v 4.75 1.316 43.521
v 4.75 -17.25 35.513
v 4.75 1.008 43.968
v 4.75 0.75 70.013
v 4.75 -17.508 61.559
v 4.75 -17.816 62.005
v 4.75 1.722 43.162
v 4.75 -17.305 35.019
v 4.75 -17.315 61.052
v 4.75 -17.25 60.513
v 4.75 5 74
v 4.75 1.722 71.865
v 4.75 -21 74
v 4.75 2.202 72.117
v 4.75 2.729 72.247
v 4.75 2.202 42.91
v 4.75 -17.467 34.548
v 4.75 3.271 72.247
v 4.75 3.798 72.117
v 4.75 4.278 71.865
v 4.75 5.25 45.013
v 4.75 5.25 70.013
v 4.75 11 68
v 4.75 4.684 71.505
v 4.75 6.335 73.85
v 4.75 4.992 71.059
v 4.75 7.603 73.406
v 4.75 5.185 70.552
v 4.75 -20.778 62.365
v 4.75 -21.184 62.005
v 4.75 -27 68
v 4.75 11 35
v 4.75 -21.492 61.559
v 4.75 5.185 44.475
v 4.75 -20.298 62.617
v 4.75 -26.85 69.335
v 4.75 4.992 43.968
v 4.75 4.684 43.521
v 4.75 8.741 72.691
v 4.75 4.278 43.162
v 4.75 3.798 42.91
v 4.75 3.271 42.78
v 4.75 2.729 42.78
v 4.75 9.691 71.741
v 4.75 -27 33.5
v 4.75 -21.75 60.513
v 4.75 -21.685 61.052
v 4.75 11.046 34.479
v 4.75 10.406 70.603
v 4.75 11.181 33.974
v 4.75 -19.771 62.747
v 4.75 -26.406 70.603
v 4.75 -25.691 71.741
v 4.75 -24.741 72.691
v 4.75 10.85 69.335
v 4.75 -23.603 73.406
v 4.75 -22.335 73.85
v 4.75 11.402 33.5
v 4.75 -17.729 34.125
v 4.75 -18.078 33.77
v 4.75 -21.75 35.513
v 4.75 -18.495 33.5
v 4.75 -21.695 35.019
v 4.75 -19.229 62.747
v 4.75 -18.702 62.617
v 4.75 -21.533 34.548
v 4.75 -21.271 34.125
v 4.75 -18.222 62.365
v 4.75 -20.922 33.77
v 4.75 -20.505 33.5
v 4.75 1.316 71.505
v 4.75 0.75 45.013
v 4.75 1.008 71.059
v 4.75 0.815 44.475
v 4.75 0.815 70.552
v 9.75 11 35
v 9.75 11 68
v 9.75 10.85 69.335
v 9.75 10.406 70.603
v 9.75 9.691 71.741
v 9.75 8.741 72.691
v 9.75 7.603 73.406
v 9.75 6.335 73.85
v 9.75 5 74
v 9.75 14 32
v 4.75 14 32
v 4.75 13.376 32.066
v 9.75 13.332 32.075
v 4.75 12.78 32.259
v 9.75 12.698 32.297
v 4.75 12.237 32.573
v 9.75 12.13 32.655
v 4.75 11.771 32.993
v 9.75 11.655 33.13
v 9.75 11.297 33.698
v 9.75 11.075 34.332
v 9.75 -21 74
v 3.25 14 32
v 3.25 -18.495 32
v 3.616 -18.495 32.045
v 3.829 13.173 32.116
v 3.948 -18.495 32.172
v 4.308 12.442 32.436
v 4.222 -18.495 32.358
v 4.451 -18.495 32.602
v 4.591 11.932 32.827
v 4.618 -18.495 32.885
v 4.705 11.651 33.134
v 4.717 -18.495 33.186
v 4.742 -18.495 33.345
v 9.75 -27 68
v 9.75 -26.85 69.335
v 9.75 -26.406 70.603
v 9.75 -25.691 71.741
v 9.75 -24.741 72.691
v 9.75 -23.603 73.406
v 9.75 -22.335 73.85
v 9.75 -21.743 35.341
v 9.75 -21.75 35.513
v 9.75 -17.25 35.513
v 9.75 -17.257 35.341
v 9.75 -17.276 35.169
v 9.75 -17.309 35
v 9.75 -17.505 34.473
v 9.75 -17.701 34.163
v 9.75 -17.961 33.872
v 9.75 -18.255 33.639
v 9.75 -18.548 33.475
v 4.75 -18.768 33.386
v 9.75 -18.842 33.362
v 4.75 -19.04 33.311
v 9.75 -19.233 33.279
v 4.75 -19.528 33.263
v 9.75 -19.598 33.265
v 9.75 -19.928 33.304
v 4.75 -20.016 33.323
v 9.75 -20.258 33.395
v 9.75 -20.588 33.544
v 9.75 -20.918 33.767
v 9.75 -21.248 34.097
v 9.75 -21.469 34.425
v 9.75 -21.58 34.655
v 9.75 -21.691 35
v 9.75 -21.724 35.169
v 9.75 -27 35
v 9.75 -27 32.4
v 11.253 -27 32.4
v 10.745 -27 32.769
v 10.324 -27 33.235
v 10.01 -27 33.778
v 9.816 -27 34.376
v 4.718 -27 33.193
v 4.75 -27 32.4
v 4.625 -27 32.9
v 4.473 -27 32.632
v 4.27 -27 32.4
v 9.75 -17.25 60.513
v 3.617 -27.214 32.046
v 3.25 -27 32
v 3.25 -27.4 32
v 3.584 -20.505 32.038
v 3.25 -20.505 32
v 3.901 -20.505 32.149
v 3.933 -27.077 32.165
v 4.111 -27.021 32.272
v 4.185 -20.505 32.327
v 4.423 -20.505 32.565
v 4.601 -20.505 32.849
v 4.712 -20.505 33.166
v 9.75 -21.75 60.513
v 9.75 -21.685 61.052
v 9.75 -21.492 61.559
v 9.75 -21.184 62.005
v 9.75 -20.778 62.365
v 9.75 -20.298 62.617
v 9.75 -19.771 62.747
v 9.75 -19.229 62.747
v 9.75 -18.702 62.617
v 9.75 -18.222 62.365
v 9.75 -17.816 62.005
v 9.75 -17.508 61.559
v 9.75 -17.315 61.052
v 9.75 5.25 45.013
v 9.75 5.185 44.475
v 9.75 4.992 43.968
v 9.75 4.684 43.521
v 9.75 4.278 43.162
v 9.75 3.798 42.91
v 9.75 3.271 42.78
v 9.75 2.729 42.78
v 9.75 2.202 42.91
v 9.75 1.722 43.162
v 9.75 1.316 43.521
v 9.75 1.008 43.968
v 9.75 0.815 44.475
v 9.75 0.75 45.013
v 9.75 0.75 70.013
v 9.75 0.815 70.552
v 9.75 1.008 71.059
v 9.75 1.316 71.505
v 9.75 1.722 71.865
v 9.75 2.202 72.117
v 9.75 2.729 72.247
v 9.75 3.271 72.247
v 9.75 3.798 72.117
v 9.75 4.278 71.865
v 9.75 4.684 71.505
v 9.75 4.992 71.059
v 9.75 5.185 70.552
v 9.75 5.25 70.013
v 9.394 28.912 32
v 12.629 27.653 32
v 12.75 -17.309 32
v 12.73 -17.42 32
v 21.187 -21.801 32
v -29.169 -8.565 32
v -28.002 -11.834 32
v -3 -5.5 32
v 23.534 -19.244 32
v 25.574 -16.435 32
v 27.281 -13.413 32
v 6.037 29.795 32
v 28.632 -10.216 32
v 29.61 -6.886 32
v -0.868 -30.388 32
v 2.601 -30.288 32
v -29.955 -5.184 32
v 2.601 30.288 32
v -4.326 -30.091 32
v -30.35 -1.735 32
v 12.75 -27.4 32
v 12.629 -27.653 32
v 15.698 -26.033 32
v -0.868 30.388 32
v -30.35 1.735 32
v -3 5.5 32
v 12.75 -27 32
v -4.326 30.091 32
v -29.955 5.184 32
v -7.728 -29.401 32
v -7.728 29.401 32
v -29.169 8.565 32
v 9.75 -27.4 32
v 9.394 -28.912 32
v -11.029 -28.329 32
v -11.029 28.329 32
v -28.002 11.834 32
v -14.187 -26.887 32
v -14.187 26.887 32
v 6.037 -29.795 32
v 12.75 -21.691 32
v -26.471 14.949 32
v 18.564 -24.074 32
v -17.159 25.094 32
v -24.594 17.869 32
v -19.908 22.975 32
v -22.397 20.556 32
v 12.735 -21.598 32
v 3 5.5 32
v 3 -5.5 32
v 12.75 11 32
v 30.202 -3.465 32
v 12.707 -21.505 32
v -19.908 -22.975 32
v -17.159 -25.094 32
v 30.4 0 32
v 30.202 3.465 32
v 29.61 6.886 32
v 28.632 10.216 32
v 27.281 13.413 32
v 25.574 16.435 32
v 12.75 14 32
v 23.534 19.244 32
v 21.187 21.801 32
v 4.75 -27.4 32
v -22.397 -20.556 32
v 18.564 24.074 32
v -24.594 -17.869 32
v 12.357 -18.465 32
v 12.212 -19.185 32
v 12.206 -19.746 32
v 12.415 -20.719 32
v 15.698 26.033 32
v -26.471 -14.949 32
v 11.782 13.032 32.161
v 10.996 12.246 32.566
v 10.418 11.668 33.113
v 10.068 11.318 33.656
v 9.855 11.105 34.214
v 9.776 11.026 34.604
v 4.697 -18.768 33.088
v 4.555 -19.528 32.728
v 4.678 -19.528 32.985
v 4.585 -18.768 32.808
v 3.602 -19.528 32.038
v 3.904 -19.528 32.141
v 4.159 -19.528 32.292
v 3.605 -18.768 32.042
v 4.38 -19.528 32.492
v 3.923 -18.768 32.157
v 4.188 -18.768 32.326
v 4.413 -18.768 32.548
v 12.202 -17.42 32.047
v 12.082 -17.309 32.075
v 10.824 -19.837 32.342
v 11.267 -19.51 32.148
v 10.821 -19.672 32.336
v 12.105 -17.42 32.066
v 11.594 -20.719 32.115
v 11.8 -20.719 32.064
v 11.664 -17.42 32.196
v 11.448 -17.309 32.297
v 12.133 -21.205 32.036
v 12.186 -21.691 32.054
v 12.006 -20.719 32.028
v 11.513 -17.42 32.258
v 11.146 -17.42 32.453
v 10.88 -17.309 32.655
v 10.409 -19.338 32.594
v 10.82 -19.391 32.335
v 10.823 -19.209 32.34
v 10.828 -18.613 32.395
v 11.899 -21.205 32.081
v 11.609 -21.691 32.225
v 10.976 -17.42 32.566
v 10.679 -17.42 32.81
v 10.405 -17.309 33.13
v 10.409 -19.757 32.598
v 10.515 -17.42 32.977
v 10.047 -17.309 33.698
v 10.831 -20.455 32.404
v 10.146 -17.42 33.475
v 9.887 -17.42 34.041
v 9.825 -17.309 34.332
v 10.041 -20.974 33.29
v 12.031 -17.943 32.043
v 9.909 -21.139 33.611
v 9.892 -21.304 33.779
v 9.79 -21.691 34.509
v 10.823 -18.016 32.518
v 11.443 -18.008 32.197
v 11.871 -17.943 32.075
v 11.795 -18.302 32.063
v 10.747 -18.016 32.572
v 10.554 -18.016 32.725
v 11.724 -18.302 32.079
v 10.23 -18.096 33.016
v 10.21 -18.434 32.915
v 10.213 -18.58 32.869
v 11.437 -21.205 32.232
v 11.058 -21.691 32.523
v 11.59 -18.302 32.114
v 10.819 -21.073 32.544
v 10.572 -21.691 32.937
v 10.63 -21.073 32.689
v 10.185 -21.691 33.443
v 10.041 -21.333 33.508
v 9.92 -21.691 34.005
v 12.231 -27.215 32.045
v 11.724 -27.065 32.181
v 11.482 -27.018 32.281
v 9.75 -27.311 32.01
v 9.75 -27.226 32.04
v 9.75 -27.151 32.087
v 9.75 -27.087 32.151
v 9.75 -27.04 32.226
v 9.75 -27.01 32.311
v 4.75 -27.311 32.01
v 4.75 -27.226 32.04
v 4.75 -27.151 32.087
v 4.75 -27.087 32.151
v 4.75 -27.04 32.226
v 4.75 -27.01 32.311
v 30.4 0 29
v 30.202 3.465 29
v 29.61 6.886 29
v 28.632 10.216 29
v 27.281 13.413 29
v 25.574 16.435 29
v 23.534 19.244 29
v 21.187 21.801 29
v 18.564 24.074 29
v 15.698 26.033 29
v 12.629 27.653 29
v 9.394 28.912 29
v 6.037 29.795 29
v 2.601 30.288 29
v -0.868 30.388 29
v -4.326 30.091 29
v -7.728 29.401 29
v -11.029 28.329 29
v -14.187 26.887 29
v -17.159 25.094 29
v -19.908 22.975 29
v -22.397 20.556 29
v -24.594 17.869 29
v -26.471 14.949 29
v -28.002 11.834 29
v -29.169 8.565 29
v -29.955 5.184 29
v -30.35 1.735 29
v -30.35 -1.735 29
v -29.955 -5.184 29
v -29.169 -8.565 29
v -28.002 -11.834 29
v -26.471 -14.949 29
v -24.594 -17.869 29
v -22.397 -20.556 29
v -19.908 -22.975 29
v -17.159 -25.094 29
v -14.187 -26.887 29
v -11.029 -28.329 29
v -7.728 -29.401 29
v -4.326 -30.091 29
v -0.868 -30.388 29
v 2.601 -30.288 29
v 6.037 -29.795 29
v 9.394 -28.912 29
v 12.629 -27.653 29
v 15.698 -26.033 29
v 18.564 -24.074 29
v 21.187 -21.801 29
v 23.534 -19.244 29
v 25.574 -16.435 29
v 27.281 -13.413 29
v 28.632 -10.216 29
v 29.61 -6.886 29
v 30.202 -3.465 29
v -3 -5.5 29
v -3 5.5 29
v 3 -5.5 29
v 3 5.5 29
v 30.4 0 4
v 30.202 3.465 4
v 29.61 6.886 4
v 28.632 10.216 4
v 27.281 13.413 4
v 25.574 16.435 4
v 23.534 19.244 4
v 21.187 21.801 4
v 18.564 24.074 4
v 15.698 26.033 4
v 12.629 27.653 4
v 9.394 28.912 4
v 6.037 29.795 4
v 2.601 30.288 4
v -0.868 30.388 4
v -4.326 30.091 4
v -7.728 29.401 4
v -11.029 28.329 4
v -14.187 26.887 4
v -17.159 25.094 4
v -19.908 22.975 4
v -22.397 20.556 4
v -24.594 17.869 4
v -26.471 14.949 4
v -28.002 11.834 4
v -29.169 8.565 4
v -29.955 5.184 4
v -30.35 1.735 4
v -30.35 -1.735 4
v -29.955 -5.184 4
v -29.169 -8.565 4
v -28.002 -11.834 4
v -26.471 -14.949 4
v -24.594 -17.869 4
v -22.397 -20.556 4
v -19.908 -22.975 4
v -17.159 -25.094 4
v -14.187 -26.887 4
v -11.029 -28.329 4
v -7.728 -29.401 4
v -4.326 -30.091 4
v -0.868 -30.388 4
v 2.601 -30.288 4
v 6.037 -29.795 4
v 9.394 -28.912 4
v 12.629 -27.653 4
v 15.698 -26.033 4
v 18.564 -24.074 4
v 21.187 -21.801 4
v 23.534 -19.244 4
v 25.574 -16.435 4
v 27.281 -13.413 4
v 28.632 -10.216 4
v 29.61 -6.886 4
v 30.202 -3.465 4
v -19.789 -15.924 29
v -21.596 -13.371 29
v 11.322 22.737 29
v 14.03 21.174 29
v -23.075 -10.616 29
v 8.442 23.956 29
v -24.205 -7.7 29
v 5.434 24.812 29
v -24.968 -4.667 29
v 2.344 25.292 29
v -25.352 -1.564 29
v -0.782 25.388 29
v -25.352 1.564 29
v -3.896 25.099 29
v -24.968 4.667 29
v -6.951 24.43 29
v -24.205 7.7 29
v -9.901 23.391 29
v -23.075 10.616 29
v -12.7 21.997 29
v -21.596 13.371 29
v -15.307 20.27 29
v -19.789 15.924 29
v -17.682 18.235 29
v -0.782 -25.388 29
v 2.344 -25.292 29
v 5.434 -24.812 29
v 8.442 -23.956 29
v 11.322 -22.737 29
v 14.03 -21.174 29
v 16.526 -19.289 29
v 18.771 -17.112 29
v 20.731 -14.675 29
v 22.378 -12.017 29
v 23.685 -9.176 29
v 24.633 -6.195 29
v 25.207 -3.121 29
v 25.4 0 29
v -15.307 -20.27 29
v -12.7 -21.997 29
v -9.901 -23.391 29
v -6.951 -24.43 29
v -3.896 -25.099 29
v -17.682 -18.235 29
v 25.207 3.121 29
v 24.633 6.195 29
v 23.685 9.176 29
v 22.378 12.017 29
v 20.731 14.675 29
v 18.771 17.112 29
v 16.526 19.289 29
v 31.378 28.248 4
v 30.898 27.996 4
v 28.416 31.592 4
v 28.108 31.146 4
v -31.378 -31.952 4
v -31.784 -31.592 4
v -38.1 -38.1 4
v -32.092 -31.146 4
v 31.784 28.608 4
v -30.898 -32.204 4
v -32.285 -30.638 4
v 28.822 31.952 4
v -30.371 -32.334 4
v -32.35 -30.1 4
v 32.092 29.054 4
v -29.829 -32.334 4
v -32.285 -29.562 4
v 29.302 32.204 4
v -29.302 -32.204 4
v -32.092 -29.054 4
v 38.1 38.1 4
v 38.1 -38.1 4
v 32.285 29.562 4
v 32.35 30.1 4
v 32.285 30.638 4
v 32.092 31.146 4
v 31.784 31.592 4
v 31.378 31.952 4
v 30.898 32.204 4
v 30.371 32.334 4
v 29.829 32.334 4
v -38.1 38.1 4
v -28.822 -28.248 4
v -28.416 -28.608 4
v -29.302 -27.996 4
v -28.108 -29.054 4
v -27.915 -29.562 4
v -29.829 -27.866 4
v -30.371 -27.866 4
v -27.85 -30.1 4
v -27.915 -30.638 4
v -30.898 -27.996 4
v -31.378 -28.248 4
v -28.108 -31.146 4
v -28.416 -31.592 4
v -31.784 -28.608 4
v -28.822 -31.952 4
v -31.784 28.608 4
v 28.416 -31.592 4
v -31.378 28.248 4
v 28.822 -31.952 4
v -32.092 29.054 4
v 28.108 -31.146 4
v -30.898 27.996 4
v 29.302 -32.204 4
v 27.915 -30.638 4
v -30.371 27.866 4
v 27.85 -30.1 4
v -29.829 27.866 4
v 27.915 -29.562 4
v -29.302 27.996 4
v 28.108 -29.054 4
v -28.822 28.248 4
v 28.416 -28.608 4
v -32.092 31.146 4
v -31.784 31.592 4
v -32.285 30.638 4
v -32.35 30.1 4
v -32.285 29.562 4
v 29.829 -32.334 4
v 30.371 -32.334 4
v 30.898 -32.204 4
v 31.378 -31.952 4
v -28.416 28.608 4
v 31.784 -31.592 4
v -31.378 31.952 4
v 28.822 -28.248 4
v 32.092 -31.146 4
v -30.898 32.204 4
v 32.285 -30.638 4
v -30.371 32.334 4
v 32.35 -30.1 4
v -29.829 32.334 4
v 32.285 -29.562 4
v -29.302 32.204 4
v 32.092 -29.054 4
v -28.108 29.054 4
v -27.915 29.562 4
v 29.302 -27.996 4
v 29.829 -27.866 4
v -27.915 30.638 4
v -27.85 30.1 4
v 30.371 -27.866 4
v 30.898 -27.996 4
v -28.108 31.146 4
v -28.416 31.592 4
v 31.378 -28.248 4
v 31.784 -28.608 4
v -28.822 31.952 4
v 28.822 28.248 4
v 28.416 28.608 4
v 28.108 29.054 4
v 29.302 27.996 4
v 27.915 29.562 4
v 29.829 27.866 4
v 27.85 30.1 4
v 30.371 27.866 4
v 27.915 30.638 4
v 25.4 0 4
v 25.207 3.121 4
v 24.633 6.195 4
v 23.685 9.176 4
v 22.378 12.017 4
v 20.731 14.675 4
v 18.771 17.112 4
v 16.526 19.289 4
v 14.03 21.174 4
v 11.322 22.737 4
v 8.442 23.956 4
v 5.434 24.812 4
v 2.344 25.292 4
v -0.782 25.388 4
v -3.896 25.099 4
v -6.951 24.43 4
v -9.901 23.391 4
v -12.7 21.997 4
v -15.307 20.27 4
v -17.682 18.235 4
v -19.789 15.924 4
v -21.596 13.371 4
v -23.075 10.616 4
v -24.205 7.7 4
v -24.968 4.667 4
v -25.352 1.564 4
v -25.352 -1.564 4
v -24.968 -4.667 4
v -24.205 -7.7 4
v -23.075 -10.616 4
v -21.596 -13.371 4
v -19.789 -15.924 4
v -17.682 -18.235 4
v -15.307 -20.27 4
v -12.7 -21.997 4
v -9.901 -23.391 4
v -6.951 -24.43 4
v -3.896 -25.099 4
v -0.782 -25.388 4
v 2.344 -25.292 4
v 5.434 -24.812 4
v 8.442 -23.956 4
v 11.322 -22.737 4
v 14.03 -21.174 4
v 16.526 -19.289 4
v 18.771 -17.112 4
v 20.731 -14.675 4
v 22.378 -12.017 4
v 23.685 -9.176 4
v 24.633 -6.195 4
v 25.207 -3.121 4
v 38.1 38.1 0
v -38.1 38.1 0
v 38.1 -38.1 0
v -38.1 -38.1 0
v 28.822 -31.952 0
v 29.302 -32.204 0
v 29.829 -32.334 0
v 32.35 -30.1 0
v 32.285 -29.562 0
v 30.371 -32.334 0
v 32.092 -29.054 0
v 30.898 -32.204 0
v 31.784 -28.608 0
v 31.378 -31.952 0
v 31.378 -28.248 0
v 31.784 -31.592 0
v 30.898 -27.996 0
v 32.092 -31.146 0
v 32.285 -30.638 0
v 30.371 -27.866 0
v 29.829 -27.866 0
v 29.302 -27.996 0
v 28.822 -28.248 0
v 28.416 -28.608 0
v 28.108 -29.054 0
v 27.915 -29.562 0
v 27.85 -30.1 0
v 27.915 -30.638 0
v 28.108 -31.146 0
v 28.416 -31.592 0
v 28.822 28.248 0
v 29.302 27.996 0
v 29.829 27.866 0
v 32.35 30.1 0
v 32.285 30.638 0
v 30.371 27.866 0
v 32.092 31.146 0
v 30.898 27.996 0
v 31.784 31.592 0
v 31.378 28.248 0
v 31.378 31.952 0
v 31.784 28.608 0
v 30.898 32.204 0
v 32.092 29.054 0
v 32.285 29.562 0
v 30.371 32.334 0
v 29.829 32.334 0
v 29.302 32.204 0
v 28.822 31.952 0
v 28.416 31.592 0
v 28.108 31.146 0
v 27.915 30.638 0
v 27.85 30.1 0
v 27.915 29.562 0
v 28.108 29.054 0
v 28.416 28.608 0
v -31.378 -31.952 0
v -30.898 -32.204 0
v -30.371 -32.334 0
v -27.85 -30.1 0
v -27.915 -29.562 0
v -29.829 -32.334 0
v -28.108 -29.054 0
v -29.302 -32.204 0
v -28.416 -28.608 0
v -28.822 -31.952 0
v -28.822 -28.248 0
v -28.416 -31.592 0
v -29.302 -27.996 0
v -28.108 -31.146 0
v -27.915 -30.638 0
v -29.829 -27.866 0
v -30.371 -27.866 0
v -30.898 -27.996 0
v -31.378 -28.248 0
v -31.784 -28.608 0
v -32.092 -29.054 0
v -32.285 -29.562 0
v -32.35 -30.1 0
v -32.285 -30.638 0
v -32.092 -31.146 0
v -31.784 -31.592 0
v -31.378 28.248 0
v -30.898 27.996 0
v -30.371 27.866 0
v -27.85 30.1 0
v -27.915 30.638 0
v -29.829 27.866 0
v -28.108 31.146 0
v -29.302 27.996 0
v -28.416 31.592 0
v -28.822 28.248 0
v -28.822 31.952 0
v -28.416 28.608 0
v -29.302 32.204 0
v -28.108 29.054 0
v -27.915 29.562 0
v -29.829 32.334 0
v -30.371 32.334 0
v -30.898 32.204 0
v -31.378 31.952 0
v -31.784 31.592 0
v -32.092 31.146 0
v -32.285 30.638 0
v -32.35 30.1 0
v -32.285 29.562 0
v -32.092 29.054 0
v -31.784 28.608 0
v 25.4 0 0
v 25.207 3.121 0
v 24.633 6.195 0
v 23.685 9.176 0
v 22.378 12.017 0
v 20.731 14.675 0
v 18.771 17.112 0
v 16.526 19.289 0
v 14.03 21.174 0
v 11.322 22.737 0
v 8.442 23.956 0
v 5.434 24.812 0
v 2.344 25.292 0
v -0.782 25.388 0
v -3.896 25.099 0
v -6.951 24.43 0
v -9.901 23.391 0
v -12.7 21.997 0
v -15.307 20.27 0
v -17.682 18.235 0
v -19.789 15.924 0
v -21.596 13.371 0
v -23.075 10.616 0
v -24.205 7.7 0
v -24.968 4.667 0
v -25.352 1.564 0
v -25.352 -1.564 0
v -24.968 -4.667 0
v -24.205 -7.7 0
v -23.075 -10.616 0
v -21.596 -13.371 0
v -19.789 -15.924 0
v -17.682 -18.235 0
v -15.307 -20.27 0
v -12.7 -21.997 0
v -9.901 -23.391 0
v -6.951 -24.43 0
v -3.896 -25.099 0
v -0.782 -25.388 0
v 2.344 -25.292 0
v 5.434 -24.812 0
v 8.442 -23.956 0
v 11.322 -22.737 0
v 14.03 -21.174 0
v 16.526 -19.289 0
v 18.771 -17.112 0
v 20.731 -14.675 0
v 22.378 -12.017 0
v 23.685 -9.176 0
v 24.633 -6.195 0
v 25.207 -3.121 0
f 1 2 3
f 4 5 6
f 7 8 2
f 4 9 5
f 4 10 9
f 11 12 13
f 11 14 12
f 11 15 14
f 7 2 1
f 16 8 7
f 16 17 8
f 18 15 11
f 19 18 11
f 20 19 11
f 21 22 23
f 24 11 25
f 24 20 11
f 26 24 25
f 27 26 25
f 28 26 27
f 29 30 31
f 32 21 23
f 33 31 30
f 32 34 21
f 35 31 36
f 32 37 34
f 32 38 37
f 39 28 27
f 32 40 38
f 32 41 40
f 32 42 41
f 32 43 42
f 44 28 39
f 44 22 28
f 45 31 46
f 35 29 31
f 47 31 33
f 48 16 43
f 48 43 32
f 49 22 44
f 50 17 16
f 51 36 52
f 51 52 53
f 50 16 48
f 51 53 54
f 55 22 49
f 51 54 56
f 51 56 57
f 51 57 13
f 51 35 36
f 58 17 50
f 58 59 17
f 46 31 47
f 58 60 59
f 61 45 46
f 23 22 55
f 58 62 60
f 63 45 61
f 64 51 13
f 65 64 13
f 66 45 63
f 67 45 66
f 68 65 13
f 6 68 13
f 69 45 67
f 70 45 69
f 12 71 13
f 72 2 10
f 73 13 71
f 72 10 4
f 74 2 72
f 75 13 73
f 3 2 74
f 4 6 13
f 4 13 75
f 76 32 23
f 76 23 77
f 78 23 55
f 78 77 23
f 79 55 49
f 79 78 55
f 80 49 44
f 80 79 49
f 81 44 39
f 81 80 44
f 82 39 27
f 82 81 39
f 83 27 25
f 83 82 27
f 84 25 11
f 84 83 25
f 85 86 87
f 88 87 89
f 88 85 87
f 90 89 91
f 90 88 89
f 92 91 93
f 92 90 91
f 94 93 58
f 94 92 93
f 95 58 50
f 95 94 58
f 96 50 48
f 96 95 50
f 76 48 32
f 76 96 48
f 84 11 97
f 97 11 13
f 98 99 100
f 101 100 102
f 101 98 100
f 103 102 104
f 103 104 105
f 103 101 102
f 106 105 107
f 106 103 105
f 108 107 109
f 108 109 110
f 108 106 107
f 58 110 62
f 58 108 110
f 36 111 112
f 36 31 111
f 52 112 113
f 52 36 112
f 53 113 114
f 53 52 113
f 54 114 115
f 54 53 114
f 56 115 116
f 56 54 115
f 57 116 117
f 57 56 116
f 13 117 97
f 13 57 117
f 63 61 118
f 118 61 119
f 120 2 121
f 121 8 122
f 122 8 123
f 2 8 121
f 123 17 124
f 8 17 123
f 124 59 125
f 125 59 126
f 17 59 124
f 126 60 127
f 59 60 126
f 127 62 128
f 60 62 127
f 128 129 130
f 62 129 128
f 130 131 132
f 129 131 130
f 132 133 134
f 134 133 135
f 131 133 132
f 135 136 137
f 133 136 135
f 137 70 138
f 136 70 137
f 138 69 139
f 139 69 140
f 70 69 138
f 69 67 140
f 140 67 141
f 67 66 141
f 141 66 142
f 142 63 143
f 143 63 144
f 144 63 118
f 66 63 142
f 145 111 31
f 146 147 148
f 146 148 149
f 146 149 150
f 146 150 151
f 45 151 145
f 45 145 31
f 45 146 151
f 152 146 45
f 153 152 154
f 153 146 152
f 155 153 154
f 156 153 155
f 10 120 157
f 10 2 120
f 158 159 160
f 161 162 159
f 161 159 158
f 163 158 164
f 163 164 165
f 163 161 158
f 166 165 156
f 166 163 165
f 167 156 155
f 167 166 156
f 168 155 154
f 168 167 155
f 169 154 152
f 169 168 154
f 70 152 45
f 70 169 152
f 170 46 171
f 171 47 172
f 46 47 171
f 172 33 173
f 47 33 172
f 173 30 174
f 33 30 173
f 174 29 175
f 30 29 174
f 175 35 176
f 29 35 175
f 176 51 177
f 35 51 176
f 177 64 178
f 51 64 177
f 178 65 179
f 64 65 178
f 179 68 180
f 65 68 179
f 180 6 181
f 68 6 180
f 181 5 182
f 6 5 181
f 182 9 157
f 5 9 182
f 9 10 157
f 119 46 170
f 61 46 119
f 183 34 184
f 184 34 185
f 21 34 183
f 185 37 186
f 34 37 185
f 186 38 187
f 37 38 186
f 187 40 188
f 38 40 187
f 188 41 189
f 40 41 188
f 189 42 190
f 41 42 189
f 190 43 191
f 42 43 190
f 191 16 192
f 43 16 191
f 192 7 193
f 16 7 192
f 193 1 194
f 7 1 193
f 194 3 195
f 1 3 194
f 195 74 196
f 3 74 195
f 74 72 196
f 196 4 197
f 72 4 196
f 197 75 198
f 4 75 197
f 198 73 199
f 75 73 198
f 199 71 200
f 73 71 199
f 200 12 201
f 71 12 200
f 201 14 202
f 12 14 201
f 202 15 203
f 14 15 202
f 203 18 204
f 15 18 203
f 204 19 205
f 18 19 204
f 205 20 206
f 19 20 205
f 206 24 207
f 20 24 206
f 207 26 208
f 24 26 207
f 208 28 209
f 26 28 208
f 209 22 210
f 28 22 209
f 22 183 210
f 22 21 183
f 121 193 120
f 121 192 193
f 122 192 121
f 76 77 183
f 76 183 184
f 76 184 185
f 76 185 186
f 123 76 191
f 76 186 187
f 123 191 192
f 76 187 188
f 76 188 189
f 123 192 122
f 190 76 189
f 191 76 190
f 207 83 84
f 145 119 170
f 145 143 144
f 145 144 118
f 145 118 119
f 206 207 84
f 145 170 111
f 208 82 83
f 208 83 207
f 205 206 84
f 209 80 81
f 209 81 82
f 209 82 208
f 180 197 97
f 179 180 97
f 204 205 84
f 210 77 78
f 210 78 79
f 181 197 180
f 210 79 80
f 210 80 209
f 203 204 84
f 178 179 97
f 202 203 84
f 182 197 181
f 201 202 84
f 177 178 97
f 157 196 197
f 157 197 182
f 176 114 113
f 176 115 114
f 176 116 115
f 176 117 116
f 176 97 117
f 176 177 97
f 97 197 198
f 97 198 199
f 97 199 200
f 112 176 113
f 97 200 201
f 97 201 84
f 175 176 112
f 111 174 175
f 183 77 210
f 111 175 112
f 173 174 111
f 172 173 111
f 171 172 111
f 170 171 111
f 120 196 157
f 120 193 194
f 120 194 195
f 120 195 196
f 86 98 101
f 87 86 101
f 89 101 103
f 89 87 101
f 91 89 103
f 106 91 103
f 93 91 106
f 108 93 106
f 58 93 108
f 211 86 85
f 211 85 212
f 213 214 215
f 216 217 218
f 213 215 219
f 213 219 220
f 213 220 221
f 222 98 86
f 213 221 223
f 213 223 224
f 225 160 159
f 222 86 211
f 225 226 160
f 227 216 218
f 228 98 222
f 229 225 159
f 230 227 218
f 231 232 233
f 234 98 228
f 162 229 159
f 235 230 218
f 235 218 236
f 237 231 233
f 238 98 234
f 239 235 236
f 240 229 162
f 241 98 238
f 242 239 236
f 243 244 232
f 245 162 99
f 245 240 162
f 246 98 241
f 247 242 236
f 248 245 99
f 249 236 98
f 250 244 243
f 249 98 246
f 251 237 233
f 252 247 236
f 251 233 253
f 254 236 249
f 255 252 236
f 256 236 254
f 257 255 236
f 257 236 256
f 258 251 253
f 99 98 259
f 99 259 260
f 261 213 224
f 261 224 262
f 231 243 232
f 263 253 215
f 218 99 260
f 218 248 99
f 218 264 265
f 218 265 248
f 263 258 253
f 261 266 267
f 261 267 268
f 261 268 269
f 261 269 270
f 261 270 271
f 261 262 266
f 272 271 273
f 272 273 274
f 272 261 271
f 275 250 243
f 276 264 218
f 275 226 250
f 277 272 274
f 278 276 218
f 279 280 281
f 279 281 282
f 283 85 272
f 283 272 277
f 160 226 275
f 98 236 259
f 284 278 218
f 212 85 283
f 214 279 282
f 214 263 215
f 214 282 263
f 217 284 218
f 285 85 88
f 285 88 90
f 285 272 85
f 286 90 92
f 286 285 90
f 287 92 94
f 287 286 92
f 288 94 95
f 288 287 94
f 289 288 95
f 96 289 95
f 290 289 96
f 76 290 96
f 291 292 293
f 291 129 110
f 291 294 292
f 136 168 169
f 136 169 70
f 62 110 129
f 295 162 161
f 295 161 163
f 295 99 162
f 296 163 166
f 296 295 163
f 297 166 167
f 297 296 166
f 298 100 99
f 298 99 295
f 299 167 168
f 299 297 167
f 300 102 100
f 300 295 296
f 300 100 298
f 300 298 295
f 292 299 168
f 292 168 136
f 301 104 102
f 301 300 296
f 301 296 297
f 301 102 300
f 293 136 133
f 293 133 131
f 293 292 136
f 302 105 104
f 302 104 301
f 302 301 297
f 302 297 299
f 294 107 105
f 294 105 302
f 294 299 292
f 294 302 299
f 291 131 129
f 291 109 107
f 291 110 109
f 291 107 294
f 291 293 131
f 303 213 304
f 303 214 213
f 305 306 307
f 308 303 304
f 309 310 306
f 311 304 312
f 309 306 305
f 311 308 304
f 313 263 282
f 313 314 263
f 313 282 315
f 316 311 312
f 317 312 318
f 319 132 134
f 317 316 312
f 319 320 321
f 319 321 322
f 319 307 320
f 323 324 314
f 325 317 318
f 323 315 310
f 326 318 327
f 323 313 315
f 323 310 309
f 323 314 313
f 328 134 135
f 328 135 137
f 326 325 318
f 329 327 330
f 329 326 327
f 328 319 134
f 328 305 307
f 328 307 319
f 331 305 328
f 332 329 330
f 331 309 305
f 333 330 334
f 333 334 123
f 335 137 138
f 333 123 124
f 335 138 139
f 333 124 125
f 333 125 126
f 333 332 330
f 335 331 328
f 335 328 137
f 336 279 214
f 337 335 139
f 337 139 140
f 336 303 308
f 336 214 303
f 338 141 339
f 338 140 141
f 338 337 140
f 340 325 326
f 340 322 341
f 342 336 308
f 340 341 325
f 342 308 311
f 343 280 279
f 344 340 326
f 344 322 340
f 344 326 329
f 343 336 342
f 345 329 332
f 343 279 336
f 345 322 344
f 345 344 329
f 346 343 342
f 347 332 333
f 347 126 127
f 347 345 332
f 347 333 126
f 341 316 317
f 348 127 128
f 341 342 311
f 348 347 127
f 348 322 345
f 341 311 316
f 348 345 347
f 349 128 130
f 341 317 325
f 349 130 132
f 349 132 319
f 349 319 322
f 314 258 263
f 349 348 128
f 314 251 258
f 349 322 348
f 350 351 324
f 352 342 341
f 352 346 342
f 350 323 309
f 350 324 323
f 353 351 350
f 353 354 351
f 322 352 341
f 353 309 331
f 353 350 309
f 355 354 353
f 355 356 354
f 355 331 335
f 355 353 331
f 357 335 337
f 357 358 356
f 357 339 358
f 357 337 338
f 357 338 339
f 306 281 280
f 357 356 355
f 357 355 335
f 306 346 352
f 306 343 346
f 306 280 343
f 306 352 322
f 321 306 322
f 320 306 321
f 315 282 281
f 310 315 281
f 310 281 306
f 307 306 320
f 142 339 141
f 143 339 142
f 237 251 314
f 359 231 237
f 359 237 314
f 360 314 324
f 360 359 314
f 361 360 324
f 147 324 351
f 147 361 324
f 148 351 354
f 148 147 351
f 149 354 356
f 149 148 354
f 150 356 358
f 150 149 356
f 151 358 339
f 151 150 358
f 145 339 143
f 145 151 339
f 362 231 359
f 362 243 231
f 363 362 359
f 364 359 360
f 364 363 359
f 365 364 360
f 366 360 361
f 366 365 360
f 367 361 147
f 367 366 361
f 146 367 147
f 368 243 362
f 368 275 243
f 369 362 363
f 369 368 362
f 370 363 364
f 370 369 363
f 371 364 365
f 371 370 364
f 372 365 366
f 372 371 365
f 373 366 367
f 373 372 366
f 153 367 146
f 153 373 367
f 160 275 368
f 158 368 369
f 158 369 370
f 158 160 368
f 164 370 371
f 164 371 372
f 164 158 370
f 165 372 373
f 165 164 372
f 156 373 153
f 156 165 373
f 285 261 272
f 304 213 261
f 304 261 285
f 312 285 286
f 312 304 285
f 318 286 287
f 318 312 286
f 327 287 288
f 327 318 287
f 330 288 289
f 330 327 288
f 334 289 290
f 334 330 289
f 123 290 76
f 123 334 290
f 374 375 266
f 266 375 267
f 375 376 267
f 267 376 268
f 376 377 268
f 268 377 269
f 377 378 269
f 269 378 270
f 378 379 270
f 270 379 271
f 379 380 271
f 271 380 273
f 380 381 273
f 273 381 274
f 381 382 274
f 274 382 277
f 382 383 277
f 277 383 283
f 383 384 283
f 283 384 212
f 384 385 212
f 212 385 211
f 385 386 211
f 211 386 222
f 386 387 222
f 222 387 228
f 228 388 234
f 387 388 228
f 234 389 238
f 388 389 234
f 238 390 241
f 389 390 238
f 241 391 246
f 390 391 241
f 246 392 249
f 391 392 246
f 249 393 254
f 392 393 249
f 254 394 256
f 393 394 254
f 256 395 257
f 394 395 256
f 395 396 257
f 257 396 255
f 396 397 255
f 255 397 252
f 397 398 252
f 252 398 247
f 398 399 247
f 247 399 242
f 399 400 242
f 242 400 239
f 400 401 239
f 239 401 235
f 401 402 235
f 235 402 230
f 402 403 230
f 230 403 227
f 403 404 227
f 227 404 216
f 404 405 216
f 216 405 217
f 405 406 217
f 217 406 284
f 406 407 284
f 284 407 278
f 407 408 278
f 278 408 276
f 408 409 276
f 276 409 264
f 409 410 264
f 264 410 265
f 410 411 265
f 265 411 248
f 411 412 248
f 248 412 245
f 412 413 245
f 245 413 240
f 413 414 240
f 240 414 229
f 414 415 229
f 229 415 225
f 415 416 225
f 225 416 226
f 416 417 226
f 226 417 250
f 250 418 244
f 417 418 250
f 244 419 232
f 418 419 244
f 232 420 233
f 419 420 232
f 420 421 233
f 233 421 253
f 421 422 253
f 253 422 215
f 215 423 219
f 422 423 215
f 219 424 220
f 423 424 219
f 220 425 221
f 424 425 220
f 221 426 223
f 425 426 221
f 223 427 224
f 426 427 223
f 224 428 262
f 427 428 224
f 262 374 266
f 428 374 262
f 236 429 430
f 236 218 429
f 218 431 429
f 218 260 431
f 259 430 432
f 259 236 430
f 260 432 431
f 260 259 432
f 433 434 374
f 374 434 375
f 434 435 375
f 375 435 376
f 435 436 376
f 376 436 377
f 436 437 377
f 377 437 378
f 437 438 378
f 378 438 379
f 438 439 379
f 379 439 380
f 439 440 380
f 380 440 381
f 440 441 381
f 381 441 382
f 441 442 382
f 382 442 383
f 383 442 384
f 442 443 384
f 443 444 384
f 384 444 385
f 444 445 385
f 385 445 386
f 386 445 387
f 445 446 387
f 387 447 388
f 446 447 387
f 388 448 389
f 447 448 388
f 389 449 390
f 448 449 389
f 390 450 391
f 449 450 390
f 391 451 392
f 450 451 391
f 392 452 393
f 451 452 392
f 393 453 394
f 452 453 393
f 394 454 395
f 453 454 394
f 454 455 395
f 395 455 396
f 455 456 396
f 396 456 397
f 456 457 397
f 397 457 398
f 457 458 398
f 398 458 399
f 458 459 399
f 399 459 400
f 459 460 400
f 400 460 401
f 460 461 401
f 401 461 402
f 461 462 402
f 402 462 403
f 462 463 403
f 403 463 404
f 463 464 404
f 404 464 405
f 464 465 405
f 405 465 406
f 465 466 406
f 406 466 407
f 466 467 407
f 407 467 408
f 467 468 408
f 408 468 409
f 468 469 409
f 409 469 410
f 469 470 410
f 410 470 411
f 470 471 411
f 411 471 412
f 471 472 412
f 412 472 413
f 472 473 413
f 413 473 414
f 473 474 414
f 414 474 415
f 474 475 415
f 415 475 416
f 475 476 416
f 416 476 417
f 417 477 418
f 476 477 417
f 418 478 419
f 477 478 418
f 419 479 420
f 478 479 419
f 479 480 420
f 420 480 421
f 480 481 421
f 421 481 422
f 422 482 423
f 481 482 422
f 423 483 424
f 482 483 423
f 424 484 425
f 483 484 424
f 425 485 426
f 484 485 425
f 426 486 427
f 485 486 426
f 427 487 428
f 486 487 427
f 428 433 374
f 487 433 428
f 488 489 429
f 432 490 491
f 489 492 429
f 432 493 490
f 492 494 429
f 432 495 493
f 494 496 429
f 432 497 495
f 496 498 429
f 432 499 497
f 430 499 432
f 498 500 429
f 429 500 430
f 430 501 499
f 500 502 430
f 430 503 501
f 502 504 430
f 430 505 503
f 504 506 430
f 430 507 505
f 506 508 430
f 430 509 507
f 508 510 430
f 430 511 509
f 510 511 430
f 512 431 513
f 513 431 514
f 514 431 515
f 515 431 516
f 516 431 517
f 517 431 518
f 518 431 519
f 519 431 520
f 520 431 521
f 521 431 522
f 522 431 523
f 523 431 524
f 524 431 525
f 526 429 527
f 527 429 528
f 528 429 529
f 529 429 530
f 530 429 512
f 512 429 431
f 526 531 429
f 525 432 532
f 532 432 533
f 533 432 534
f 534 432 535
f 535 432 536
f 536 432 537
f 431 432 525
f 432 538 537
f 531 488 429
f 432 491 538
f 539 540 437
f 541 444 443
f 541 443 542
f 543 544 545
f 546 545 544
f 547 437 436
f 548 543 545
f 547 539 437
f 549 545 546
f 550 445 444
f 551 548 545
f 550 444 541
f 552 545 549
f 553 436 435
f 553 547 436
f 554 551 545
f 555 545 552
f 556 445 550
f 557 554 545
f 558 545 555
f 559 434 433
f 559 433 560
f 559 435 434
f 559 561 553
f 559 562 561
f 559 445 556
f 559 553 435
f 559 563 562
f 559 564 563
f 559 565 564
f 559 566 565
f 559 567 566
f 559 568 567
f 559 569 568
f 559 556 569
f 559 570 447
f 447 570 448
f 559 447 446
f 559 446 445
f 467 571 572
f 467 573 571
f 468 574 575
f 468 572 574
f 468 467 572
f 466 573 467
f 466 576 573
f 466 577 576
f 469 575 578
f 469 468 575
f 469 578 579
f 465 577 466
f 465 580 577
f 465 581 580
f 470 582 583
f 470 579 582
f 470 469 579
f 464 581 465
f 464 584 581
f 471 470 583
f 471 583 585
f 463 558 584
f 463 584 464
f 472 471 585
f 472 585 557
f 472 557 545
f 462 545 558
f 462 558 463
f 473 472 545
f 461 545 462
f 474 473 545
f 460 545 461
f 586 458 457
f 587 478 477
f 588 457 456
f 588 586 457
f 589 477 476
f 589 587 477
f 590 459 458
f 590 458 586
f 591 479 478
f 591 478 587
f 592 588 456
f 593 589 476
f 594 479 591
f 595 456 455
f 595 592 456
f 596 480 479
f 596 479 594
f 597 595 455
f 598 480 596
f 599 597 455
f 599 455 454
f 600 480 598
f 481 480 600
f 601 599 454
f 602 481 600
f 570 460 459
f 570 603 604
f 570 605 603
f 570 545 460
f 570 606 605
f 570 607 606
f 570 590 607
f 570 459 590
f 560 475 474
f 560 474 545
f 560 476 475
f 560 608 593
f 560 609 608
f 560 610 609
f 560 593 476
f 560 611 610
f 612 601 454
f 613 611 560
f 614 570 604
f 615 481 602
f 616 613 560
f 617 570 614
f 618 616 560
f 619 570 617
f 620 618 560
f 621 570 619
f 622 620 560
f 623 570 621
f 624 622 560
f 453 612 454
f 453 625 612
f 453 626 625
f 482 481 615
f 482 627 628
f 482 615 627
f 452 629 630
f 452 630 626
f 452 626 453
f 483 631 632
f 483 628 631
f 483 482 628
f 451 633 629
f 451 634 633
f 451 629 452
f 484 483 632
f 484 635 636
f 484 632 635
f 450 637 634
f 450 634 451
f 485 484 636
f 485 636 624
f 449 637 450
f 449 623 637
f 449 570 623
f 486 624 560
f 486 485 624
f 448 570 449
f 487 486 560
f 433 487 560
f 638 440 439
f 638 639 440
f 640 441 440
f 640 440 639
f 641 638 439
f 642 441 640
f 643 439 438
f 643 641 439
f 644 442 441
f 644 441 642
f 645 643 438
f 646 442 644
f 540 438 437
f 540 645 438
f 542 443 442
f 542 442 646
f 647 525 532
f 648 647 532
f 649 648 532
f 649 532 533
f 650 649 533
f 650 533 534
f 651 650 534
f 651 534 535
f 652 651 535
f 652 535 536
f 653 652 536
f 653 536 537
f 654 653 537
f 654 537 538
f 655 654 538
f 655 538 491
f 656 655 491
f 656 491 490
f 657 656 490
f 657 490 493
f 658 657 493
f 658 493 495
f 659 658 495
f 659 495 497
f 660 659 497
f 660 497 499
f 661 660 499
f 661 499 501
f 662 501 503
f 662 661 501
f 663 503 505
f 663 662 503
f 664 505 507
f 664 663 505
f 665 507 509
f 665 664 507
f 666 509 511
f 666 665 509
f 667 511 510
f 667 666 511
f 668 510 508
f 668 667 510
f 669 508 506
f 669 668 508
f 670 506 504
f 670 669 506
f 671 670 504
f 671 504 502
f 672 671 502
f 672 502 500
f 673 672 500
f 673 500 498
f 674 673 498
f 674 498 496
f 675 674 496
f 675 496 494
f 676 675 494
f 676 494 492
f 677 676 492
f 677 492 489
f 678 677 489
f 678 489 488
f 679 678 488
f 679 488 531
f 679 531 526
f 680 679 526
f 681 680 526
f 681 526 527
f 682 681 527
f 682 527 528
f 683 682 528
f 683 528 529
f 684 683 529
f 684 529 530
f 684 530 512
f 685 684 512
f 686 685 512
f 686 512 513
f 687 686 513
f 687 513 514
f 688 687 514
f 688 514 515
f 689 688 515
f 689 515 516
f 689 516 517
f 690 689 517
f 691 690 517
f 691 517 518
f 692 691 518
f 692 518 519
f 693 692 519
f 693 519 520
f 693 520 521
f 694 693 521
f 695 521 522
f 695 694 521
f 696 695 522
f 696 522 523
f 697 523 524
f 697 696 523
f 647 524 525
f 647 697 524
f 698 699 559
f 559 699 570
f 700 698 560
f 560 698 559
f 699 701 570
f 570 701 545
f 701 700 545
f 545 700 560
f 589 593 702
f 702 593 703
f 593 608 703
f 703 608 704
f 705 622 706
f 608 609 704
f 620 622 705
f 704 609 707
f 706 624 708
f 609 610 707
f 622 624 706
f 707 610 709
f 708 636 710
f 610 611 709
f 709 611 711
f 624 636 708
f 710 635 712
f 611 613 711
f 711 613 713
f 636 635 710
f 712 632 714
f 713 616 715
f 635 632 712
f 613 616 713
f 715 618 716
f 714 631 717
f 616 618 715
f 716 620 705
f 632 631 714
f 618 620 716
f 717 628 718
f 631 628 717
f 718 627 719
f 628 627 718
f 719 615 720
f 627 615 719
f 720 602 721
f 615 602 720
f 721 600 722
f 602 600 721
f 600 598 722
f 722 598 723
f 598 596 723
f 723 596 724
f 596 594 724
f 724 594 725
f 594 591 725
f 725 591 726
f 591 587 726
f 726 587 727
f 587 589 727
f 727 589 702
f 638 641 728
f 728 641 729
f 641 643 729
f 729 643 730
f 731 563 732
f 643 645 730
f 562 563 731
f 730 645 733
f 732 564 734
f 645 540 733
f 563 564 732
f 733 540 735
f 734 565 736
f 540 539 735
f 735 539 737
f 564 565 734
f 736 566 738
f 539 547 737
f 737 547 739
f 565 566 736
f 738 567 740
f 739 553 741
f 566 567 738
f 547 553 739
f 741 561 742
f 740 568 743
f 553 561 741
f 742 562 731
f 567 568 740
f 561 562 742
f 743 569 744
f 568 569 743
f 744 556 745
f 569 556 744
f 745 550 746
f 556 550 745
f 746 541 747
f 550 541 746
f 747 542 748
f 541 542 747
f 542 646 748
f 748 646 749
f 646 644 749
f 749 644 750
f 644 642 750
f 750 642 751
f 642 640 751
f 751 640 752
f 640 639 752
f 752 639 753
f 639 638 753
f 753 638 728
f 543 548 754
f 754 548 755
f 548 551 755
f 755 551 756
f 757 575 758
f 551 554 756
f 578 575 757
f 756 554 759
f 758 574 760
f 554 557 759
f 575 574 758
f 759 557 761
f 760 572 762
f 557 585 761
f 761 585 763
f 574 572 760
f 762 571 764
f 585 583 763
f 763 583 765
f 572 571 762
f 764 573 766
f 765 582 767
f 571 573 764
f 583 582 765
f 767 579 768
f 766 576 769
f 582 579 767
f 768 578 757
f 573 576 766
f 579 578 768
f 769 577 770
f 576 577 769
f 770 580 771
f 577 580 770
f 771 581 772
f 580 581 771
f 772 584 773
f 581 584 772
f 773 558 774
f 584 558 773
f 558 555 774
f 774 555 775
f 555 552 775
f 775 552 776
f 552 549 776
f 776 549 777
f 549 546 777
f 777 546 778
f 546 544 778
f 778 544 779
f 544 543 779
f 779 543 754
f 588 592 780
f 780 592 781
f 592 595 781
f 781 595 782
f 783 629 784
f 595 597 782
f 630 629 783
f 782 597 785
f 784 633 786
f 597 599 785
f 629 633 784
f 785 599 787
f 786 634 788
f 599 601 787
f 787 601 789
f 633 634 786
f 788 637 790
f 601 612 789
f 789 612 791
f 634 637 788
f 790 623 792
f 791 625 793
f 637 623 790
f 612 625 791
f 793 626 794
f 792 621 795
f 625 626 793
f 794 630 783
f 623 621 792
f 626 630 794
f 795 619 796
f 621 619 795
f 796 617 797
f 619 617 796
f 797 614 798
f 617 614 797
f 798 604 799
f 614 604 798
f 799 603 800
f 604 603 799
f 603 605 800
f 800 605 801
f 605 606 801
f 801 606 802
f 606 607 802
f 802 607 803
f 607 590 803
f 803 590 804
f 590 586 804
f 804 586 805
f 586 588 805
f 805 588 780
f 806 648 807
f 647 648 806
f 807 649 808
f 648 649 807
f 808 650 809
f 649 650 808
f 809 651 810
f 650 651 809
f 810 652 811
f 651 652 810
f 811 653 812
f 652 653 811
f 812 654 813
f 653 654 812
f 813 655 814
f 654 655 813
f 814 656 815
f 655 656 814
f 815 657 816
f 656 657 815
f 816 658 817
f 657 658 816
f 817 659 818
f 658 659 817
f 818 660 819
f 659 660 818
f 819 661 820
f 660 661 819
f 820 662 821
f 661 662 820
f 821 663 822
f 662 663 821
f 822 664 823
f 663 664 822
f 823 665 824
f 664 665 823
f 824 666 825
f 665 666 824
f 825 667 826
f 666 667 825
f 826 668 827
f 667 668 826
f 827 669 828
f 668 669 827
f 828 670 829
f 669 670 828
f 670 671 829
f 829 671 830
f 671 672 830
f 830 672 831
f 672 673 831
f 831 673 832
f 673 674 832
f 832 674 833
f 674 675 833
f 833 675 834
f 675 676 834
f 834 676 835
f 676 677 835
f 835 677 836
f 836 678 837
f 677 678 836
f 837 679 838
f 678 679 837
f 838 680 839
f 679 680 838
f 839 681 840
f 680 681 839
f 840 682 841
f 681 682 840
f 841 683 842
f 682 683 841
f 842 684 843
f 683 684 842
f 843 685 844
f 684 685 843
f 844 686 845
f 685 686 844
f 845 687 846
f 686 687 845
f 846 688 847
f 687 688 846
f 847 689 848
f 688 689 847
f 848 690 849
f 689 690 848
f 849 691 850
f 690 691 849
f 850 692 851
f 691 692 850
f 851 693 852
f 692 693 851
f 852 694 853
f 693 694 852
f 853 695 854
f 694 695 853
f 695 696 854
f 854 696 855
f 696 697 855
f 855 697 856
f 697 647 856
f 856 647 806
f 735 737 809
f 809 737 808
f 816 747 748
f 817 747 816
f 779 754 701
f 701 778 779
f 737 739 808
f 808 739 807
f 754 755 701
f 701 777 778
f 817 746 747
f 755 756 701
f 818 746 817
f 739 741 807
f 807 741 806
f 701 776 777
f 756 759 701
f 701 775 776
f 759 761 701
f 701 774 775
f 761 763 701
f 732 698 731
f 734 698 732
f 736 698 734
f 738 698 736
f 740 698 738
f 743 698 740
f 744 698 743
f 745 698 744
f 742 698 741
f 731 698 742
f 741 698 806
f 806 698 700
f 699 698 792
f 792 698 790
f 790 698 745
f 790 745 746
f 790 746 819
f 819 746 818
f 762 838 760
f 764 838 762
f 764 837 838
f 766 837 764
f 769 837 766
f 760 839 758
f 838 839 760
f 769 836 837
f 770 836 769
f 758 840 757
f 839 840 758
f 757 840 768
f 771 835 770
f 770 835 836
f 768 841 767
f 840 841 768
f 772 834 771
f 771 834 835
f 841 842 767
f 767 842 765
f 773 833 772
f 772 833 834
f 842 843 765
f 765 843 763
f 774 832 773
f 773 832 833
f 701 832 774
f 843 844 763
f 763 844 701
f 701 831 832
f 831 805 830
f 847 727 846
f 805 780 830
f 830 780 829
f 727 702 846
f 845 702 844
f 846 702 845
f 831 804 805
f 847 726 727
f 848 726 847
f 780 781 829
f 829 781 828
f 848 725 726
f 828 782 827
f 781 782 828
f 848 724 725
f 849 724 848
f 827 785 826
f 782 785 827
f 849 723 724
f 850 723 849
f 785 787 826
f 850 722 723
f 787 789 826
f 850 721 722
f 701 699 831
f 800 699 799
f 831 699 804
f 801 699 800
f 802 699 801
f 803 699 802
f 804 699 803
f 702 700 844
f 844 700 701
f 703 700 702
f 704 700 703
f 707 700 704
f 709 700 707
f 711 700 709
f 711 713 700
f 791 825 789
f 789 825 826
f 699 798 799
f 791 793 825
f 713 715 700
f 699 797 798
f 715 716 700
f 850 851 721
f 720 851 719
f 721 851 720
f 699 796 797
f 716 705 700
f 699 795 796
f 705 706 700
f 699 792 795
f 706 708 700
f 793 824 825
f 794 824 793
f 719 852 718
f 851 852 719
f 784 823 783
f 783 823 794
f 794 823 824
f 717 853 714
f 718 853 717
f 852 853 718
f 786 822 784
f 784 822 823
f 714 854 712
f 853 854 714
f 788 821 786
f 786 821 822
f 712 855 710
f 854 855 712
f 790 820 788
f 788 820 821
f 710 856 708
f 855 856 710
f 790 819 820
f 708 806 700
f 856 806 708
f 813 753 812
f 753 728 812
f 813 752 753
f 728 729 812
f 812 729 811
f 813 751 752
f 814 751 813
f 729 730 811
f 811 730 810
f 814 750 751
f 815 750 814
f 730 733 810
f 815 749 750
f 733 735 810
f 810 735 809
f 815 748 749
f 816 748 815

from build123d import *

# Parameters (mm, degrees)
SKETCH_W        = 76.2
SKETCH_H        = 76.2
PAD_DEPTH       = 4
SKETCH001_R     = 25.4
POCKET_DEPTH    = 4.001
SKETCH002_R     = 2.25
POCKET001_DEPTH = 4.001
SKETCH003_R     = 30.4
SKETCH003_R_2   = 25.4
PAD001_DEPTH    = 25
SKETCH004_R     = 30.4
PAD002_DEPTH    = 3
SKETCH005_W     = 6
SKETCH005_H     = 11
POCKET002_DEPTH = 32.001
SKETCH006_W     = 5
SKETCH006_H     = 38
PAD003_DEPTH    = 42
POCKET003_DEPTH = 33.351
FILLET_R        = 1.5
FILLET001_R     = 3
FILLET002_R     = 0.4
FILLET003_R     = 3
FILLET004_R     = 6


with BuildPart() as part:
    # Sketch → Pad (new body)
    with BuildSketch(Plane.XY):
        Rectangle(SKETCH_W, SKETCH_H)
    extrude(amount=PAD_DEPTH)

    # Sketch001 (on Face6 of Pad) → Pocket (cut, through all)
    with BuildSketch(Plane.XY.offset(4)):
        Circle(SKETCH001_R)
    extrude(amount=-POCKET_DEPTH, mode=Mode.SUBTRACT)

    # Sketch002 (on Face5 of Pocket) → Pocket001 (cut, through all)
    with BuildSketch(Plane.XY.offset(4)):
        with Locations((-30.1, -30.1)):
            Circle(SKETCH002_R)
        with Locations((30.1, -30.1)):
            Circle(SKETCH002_R)
        with Locations((30.1, 30.1)):
            Circle(SKETCH002_R)
        with Locations((-30.1, 30.1)):
            Circle(SKETCH002_R)
    extrude(amount=-POCKET001_DEPTH, mode=Mode.SUBTRACT)

    # Sketch003 (on Face5 of Pocket001) → Pad001 (join)
    with BuildSketch(Plane.XY.offset(4)):
        Circle(SKETCH003_R)
        Circle(SKETCH003_R_2, mode=Mode.SUBTRACT)
    extrude(amount=PAD001_DEPTH)

    # Sketch004 (on Face14 of Pad001) → Pad002 (join)
    with BuildSketch(Plane.XY.offset(29)):
        Circle(SKETCH004_R)
    extrude(amount=PAD002_DEPTH)

    # Sketch005 (on Face16 of Pad002) → Pocket002 (cut, through all)
    with BuildSketch(Plane.XY.offset(32)):
        Rectangle(SKETCH005_W, SKETCH005_H)
    extrude(amount=-POCKET002_DEPTH, mode=Mode.SUBTRACT)

    # Sketch006 (on Face16 of Pocket002) → Pad003 (join)
    with BuildSketch(Plane.XY.offset(32)):
        with Locations((7.25, -8)):
            Rectangle(SKETCH006_W, SKETCH006_H)
    extrude(amount=PAD003_DEPTH)

    # CopySketch007 (on Face21 of Pad003) → Pocket003 (cut, through all)
    with BuildSketch(Plane(origin=(4.75, 0, 0), x_dir=(0, -1, 0), z_dir=(-1, 0, 0))):
        with BuildLine():
            ThreePointArc((-5.25, 45.013309), (-3, 42.763309), (-0.75, 45.013309))
            Line((-0.75, 45.013309), (-0.75, 70.013309))
            ThreePointArc((-0.75, 70.013309), (-3, 72.263309), (-5.25, 70.013309))
            Line((-5.25, 45.013309), (-5.25, 70.013309))
        make_face()
        with BuildLine():
            ThreePointArc((17.25, 35.513309), (19.5, 33.263309), (21.75, 35.513309))
            Line((21.75, 35.513309), (21.75, 60.513309))
            ThreePointArc((21.75, 60.513309), (19.5, 62.763309), (17.25, 60.513309))
            Line((17.25, 35.513309), (17.25, 60.513309))
        make_face()
    extrude(amount=-POCKET003_DEPTH, mode=Mode.SUBTRACT)

    # Fillet
    fillet_edges = [part.edges().sort_by_distance(p)[0] for p in [
        (4.75, -8, 32),
    ]]
    fillet(fillet_edges, radius=FILLET_R)

    # Fillet001
    fillet001_edges = [part.edges().sort_by_distance(p)[0] for p in [
        (9.75, -8, 32),
    ]]
    fillet(fillet001_edges, radius=FILLET001_R)

    # Fillet002
    fillet002_edges = [part.edges().sort_by_distance(p)[0] for p in [
        (7.25, -27, 32),
    ]]
    fillet(fillet002_edges, radius=FILLET002_R)

    # Fillet003
    fillet003_edges = [part.edges().sort_by_distance(p)[0] for p in [
        (7.25, 11, 32),
    ]]
    fillet(fillet003_edges, radius=FILLET003_R)

    # Fillet004
    fillet004_edges = [part.edges().sort_by_distance(p)[0] for p in [
        (7.25, -27, 74),
        (7.25, 11, 74),
    ]]
    fillet(fillet004_edges, radius=FILLET004_R)


solid = part.part
